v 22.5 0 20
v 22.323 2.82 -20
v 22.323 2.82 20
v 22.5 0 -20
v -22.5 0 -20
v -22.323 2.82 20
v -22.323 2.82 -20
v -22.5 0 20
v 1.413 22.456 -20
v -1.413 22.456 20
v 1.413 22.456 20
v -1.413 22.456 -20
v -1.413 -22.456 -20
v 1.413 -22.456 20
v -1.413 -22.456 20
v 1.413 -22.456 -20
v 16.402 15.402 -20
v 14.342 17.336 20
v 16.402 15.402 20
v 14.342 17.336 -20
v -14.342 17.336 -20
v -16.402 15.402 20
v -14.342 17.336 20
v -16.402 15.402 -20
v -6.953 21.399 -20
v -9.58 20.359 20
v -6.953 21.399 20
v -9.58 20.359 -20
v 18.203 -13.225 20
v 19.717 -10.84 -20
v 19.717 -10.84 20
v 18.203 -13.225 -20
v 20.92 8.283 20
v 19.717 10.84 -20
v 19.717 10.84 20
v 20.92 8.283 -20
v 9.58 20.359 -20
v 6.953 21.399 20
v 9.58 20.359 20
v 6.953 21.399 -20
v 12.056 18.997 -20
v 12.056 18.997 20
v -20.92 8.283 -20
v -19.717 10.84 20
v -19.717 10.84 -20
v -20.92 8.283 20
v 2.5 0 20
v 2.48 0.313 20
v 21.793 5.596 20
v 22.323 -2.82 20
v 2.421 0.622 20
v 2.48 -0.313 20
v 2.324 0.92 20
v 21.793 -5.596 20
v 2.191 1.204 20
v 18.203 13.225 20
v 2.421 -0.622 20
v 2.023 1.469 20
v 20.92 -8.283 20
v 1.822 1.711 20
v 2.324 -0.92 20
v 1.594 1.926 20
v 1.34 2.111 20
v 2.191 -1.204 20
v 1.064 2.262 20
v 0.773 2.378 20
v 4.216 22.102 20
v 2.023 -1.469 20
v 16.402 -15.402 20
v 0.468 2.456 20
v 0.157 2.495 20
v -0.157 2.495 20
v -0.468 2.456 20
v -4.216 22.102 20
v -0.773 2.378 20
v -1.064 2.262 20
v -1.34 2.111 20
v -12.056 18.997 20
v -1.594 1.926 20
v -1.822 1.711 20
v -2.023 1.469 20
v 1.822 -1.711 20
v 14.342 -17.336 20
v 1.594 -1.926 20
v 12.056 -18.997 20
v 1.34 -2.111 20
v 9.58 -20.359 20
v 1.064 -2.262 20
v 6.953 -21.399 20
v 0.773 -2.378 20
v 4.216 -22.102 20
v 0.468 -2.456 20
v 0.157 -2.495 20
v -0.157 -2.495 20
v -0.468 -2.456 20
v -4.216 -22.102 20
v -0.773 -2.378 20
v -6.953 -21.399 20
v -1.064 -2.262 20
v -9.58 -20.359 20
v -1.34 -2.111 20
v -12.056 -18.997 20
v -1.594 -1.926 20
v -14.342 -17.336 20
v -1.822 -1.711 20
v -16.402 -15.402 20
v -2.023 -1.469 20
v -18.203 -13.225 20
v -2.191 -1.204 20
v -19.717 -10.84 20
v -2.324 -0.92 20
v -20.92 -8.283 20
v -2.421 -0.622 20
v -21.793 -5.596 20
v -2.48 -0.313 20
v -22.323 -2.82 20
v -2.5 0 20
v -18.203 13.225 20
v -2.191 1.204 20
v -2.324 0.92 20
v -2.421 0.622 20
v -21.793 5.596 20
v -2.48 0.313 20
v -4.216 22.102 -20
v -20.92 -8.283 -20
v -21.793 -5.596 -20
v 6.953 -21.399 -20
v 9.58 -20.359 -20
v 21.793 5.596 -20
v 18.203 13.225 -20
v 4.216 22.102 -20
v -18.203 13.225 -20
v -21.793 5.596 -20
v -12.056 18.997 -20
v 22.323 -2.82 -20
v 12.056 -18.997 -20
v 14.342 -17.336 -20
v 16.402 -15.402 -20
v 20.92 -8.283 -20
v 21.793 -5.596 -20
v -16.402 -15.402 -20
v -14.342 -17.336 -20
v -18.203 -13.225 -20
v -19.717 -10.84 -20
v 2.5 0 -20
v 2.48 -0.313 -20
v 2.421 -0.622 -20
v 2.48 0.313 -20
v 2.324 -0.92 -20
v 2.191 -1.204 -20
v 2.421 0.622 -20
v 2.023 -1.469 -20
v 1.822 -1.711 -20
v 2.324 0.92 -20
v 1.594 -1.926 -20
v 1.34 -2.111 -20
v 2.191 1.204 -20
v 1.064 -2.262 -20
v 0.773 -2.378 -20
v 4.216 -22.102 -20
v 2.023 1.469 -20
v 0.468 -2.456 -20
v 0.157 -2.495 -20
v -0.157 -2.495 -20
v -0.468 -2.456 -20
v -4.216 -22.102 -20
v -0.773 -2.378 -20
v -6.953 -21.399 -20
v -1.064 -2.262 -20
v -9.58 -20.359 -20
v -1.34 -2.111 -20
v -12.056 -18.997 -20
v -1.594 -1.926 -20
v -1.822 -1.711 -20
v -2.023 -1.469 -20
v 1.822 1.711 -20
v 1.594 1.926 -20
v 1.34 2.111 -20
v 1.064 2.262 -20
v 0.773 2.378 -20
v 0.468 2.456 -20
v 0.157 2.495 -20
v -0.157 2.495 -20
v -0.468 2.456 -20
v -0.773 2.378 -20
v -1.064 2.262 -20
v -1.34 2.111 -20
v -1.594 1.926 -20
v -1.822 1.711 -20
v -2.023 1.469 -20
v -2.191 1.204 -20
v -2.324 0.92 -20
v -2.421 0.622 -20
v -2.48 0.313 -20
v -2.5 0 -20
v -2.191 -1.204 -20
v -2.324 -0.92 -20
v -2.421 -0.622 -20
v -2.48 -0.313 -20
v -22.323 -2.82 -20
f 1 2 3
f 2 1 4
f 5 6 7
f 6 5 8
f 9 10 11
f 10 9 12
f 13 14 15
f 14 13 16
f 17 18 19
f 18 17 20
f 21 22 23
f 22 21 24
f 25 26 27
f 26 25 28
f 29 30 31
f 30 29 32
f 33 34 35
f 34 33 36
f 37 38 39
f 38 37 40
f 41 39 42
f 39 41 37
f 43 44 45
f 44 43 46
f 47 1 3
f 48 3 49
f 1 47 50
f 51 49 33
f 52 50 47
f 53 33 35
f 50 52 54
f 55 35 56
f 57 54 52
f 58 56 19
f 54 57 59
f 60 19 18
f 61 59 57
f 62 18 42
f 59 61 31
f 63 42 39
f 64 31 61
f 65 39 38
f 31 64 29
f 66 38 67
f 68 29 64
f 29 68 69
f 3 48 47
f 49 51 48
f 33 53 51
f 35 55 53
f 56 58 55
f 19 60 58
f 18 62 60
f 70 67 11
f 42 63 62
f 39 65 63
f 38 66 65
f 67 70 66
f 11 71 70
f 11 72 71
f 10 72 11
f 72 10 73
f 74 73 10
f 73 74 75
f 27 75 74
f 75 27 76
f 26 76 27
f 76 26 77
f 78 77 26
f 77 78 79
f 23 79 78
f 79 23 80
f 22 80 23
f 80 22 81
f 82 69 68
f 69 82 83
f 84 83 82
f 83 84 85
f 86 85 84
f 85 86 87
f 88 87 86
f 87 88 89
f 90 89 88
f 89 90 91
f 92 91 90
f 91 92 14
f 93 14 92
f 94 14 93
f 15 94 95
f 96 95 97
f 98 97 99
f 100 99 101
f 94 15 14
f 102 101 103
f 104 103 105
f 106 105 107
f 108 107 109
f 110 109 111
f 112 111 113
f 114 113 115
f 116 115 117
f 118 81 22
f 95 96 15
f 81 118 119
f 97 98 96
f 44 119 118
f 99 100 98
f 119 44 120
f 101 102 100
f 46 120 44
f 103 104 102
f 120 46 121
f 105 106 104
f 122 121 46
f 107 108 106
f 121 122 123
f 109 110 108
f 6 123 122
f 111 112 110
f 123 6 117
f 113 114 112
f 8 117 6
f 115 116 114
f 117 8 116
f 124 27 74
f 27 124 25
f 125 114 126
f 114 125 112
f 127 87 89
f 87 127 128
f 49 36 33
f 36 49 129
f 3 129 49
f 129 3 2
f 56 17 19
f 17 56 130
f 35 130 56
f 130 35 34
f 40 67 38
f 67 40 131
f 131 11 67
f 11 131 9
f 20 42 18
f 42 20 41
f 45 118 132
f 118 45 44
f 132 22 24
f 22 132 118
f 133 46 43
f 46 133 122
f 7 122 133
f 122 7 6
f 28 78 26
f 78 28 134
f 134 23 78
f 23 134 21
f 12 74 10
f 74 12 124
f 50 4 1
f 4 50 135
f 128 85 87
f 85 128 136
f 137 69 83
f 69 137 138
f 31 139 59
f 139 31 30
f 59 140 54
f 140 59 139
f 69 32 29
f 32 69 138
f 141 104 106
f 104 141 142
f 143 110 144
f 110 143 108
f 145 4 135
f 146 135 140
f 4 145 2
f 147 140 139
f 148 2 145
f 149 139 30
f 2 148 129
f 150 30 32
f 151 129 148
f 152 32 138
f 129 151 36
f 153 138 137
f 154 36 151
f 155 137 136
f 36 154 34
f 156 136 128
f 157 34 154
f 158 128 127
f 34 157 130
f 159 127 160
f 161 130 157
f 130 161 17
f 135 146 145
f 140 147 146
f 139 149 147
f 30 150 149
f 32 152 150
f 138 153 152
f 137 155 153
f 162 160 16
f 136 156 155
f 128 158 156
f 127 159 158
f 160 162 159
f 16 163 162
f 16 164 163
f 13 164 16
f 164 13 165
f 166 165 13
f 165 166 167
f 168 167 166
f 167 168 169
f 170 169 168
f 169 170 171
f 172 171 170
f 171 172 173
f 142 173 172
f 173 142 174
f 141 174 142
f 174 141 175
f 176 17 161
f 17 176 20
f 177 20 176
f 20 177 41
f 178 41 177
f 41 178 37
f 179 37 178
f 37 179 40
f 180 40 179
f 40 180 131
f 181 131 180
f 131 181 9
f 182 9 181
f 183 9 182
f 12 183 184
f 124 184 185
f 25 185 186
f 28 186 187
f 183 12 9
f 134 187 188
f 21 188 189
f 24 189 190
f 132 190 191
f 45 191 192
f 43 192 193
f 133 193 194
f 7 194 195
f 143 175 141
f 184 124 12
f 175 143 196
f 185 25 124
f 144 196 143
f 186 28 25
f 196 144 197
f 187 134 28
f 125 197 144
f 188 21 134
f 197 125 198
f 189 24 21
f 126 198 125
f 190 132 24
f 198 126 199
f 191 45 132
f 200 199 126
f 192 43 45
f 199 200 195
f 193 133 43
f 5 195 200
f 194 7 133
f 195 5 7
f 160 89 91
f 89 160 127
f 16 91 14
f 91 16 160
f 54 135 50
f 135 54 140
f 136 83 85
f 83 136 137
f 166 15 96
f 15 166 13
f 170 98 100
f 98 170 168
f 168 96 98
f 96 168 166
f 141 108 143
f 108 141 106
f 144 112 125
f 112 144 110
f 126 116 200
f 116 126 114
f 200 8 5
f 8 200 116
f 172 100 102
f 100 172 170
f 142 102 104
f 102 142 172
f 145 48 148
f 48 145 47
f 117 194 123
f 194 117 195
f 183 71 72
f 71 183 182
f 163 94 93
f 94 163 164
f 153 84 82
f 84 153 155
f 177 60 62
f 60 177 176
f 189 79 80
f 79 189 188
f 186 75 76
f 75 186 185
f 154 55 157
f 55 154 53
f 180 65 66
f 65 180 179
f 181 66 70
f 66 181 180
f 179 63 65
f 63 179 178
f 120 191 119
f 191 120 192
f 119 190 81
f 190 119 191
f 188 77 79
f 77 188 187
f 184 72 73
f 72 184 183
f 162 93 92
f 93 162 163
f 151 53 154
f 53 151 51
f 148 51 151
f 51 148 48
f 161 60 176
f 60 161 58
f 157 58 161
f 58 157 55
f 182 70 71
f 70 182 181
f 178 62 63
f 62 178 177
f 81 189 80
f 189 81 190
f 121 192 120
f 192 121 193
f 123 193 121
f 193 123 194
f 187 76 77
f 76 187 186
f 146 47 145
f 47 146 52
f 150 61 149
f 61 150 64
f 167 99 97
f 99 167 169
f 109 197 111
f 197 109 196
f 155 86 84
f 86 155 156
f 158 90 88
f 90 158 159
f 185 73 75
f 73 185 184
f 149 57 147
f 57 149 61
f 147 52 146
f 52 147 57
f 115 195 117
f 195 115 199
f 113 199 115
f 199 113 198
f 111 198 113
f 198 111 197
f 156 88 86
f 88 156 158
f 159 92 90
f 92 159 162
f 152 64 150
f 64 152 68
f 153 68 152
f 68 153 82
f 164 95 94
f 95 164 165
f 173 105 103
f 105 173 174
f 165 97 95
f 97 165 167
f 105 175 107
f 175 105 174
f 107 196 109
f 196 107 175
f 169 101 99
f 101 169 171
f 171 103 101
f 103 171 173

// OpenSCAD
$fn = 50;


difference() {
	union() {
		translate(v = [0, 0, -20.0000000000]) {
			cylinder(h = 40, r = 22.5000000000);
		}
	}
	union() {
		translate(v = [0, 0, -100.0000000000]) {
			cylinder(h = 200, r = 2.5000000000);
		}
	}
}
